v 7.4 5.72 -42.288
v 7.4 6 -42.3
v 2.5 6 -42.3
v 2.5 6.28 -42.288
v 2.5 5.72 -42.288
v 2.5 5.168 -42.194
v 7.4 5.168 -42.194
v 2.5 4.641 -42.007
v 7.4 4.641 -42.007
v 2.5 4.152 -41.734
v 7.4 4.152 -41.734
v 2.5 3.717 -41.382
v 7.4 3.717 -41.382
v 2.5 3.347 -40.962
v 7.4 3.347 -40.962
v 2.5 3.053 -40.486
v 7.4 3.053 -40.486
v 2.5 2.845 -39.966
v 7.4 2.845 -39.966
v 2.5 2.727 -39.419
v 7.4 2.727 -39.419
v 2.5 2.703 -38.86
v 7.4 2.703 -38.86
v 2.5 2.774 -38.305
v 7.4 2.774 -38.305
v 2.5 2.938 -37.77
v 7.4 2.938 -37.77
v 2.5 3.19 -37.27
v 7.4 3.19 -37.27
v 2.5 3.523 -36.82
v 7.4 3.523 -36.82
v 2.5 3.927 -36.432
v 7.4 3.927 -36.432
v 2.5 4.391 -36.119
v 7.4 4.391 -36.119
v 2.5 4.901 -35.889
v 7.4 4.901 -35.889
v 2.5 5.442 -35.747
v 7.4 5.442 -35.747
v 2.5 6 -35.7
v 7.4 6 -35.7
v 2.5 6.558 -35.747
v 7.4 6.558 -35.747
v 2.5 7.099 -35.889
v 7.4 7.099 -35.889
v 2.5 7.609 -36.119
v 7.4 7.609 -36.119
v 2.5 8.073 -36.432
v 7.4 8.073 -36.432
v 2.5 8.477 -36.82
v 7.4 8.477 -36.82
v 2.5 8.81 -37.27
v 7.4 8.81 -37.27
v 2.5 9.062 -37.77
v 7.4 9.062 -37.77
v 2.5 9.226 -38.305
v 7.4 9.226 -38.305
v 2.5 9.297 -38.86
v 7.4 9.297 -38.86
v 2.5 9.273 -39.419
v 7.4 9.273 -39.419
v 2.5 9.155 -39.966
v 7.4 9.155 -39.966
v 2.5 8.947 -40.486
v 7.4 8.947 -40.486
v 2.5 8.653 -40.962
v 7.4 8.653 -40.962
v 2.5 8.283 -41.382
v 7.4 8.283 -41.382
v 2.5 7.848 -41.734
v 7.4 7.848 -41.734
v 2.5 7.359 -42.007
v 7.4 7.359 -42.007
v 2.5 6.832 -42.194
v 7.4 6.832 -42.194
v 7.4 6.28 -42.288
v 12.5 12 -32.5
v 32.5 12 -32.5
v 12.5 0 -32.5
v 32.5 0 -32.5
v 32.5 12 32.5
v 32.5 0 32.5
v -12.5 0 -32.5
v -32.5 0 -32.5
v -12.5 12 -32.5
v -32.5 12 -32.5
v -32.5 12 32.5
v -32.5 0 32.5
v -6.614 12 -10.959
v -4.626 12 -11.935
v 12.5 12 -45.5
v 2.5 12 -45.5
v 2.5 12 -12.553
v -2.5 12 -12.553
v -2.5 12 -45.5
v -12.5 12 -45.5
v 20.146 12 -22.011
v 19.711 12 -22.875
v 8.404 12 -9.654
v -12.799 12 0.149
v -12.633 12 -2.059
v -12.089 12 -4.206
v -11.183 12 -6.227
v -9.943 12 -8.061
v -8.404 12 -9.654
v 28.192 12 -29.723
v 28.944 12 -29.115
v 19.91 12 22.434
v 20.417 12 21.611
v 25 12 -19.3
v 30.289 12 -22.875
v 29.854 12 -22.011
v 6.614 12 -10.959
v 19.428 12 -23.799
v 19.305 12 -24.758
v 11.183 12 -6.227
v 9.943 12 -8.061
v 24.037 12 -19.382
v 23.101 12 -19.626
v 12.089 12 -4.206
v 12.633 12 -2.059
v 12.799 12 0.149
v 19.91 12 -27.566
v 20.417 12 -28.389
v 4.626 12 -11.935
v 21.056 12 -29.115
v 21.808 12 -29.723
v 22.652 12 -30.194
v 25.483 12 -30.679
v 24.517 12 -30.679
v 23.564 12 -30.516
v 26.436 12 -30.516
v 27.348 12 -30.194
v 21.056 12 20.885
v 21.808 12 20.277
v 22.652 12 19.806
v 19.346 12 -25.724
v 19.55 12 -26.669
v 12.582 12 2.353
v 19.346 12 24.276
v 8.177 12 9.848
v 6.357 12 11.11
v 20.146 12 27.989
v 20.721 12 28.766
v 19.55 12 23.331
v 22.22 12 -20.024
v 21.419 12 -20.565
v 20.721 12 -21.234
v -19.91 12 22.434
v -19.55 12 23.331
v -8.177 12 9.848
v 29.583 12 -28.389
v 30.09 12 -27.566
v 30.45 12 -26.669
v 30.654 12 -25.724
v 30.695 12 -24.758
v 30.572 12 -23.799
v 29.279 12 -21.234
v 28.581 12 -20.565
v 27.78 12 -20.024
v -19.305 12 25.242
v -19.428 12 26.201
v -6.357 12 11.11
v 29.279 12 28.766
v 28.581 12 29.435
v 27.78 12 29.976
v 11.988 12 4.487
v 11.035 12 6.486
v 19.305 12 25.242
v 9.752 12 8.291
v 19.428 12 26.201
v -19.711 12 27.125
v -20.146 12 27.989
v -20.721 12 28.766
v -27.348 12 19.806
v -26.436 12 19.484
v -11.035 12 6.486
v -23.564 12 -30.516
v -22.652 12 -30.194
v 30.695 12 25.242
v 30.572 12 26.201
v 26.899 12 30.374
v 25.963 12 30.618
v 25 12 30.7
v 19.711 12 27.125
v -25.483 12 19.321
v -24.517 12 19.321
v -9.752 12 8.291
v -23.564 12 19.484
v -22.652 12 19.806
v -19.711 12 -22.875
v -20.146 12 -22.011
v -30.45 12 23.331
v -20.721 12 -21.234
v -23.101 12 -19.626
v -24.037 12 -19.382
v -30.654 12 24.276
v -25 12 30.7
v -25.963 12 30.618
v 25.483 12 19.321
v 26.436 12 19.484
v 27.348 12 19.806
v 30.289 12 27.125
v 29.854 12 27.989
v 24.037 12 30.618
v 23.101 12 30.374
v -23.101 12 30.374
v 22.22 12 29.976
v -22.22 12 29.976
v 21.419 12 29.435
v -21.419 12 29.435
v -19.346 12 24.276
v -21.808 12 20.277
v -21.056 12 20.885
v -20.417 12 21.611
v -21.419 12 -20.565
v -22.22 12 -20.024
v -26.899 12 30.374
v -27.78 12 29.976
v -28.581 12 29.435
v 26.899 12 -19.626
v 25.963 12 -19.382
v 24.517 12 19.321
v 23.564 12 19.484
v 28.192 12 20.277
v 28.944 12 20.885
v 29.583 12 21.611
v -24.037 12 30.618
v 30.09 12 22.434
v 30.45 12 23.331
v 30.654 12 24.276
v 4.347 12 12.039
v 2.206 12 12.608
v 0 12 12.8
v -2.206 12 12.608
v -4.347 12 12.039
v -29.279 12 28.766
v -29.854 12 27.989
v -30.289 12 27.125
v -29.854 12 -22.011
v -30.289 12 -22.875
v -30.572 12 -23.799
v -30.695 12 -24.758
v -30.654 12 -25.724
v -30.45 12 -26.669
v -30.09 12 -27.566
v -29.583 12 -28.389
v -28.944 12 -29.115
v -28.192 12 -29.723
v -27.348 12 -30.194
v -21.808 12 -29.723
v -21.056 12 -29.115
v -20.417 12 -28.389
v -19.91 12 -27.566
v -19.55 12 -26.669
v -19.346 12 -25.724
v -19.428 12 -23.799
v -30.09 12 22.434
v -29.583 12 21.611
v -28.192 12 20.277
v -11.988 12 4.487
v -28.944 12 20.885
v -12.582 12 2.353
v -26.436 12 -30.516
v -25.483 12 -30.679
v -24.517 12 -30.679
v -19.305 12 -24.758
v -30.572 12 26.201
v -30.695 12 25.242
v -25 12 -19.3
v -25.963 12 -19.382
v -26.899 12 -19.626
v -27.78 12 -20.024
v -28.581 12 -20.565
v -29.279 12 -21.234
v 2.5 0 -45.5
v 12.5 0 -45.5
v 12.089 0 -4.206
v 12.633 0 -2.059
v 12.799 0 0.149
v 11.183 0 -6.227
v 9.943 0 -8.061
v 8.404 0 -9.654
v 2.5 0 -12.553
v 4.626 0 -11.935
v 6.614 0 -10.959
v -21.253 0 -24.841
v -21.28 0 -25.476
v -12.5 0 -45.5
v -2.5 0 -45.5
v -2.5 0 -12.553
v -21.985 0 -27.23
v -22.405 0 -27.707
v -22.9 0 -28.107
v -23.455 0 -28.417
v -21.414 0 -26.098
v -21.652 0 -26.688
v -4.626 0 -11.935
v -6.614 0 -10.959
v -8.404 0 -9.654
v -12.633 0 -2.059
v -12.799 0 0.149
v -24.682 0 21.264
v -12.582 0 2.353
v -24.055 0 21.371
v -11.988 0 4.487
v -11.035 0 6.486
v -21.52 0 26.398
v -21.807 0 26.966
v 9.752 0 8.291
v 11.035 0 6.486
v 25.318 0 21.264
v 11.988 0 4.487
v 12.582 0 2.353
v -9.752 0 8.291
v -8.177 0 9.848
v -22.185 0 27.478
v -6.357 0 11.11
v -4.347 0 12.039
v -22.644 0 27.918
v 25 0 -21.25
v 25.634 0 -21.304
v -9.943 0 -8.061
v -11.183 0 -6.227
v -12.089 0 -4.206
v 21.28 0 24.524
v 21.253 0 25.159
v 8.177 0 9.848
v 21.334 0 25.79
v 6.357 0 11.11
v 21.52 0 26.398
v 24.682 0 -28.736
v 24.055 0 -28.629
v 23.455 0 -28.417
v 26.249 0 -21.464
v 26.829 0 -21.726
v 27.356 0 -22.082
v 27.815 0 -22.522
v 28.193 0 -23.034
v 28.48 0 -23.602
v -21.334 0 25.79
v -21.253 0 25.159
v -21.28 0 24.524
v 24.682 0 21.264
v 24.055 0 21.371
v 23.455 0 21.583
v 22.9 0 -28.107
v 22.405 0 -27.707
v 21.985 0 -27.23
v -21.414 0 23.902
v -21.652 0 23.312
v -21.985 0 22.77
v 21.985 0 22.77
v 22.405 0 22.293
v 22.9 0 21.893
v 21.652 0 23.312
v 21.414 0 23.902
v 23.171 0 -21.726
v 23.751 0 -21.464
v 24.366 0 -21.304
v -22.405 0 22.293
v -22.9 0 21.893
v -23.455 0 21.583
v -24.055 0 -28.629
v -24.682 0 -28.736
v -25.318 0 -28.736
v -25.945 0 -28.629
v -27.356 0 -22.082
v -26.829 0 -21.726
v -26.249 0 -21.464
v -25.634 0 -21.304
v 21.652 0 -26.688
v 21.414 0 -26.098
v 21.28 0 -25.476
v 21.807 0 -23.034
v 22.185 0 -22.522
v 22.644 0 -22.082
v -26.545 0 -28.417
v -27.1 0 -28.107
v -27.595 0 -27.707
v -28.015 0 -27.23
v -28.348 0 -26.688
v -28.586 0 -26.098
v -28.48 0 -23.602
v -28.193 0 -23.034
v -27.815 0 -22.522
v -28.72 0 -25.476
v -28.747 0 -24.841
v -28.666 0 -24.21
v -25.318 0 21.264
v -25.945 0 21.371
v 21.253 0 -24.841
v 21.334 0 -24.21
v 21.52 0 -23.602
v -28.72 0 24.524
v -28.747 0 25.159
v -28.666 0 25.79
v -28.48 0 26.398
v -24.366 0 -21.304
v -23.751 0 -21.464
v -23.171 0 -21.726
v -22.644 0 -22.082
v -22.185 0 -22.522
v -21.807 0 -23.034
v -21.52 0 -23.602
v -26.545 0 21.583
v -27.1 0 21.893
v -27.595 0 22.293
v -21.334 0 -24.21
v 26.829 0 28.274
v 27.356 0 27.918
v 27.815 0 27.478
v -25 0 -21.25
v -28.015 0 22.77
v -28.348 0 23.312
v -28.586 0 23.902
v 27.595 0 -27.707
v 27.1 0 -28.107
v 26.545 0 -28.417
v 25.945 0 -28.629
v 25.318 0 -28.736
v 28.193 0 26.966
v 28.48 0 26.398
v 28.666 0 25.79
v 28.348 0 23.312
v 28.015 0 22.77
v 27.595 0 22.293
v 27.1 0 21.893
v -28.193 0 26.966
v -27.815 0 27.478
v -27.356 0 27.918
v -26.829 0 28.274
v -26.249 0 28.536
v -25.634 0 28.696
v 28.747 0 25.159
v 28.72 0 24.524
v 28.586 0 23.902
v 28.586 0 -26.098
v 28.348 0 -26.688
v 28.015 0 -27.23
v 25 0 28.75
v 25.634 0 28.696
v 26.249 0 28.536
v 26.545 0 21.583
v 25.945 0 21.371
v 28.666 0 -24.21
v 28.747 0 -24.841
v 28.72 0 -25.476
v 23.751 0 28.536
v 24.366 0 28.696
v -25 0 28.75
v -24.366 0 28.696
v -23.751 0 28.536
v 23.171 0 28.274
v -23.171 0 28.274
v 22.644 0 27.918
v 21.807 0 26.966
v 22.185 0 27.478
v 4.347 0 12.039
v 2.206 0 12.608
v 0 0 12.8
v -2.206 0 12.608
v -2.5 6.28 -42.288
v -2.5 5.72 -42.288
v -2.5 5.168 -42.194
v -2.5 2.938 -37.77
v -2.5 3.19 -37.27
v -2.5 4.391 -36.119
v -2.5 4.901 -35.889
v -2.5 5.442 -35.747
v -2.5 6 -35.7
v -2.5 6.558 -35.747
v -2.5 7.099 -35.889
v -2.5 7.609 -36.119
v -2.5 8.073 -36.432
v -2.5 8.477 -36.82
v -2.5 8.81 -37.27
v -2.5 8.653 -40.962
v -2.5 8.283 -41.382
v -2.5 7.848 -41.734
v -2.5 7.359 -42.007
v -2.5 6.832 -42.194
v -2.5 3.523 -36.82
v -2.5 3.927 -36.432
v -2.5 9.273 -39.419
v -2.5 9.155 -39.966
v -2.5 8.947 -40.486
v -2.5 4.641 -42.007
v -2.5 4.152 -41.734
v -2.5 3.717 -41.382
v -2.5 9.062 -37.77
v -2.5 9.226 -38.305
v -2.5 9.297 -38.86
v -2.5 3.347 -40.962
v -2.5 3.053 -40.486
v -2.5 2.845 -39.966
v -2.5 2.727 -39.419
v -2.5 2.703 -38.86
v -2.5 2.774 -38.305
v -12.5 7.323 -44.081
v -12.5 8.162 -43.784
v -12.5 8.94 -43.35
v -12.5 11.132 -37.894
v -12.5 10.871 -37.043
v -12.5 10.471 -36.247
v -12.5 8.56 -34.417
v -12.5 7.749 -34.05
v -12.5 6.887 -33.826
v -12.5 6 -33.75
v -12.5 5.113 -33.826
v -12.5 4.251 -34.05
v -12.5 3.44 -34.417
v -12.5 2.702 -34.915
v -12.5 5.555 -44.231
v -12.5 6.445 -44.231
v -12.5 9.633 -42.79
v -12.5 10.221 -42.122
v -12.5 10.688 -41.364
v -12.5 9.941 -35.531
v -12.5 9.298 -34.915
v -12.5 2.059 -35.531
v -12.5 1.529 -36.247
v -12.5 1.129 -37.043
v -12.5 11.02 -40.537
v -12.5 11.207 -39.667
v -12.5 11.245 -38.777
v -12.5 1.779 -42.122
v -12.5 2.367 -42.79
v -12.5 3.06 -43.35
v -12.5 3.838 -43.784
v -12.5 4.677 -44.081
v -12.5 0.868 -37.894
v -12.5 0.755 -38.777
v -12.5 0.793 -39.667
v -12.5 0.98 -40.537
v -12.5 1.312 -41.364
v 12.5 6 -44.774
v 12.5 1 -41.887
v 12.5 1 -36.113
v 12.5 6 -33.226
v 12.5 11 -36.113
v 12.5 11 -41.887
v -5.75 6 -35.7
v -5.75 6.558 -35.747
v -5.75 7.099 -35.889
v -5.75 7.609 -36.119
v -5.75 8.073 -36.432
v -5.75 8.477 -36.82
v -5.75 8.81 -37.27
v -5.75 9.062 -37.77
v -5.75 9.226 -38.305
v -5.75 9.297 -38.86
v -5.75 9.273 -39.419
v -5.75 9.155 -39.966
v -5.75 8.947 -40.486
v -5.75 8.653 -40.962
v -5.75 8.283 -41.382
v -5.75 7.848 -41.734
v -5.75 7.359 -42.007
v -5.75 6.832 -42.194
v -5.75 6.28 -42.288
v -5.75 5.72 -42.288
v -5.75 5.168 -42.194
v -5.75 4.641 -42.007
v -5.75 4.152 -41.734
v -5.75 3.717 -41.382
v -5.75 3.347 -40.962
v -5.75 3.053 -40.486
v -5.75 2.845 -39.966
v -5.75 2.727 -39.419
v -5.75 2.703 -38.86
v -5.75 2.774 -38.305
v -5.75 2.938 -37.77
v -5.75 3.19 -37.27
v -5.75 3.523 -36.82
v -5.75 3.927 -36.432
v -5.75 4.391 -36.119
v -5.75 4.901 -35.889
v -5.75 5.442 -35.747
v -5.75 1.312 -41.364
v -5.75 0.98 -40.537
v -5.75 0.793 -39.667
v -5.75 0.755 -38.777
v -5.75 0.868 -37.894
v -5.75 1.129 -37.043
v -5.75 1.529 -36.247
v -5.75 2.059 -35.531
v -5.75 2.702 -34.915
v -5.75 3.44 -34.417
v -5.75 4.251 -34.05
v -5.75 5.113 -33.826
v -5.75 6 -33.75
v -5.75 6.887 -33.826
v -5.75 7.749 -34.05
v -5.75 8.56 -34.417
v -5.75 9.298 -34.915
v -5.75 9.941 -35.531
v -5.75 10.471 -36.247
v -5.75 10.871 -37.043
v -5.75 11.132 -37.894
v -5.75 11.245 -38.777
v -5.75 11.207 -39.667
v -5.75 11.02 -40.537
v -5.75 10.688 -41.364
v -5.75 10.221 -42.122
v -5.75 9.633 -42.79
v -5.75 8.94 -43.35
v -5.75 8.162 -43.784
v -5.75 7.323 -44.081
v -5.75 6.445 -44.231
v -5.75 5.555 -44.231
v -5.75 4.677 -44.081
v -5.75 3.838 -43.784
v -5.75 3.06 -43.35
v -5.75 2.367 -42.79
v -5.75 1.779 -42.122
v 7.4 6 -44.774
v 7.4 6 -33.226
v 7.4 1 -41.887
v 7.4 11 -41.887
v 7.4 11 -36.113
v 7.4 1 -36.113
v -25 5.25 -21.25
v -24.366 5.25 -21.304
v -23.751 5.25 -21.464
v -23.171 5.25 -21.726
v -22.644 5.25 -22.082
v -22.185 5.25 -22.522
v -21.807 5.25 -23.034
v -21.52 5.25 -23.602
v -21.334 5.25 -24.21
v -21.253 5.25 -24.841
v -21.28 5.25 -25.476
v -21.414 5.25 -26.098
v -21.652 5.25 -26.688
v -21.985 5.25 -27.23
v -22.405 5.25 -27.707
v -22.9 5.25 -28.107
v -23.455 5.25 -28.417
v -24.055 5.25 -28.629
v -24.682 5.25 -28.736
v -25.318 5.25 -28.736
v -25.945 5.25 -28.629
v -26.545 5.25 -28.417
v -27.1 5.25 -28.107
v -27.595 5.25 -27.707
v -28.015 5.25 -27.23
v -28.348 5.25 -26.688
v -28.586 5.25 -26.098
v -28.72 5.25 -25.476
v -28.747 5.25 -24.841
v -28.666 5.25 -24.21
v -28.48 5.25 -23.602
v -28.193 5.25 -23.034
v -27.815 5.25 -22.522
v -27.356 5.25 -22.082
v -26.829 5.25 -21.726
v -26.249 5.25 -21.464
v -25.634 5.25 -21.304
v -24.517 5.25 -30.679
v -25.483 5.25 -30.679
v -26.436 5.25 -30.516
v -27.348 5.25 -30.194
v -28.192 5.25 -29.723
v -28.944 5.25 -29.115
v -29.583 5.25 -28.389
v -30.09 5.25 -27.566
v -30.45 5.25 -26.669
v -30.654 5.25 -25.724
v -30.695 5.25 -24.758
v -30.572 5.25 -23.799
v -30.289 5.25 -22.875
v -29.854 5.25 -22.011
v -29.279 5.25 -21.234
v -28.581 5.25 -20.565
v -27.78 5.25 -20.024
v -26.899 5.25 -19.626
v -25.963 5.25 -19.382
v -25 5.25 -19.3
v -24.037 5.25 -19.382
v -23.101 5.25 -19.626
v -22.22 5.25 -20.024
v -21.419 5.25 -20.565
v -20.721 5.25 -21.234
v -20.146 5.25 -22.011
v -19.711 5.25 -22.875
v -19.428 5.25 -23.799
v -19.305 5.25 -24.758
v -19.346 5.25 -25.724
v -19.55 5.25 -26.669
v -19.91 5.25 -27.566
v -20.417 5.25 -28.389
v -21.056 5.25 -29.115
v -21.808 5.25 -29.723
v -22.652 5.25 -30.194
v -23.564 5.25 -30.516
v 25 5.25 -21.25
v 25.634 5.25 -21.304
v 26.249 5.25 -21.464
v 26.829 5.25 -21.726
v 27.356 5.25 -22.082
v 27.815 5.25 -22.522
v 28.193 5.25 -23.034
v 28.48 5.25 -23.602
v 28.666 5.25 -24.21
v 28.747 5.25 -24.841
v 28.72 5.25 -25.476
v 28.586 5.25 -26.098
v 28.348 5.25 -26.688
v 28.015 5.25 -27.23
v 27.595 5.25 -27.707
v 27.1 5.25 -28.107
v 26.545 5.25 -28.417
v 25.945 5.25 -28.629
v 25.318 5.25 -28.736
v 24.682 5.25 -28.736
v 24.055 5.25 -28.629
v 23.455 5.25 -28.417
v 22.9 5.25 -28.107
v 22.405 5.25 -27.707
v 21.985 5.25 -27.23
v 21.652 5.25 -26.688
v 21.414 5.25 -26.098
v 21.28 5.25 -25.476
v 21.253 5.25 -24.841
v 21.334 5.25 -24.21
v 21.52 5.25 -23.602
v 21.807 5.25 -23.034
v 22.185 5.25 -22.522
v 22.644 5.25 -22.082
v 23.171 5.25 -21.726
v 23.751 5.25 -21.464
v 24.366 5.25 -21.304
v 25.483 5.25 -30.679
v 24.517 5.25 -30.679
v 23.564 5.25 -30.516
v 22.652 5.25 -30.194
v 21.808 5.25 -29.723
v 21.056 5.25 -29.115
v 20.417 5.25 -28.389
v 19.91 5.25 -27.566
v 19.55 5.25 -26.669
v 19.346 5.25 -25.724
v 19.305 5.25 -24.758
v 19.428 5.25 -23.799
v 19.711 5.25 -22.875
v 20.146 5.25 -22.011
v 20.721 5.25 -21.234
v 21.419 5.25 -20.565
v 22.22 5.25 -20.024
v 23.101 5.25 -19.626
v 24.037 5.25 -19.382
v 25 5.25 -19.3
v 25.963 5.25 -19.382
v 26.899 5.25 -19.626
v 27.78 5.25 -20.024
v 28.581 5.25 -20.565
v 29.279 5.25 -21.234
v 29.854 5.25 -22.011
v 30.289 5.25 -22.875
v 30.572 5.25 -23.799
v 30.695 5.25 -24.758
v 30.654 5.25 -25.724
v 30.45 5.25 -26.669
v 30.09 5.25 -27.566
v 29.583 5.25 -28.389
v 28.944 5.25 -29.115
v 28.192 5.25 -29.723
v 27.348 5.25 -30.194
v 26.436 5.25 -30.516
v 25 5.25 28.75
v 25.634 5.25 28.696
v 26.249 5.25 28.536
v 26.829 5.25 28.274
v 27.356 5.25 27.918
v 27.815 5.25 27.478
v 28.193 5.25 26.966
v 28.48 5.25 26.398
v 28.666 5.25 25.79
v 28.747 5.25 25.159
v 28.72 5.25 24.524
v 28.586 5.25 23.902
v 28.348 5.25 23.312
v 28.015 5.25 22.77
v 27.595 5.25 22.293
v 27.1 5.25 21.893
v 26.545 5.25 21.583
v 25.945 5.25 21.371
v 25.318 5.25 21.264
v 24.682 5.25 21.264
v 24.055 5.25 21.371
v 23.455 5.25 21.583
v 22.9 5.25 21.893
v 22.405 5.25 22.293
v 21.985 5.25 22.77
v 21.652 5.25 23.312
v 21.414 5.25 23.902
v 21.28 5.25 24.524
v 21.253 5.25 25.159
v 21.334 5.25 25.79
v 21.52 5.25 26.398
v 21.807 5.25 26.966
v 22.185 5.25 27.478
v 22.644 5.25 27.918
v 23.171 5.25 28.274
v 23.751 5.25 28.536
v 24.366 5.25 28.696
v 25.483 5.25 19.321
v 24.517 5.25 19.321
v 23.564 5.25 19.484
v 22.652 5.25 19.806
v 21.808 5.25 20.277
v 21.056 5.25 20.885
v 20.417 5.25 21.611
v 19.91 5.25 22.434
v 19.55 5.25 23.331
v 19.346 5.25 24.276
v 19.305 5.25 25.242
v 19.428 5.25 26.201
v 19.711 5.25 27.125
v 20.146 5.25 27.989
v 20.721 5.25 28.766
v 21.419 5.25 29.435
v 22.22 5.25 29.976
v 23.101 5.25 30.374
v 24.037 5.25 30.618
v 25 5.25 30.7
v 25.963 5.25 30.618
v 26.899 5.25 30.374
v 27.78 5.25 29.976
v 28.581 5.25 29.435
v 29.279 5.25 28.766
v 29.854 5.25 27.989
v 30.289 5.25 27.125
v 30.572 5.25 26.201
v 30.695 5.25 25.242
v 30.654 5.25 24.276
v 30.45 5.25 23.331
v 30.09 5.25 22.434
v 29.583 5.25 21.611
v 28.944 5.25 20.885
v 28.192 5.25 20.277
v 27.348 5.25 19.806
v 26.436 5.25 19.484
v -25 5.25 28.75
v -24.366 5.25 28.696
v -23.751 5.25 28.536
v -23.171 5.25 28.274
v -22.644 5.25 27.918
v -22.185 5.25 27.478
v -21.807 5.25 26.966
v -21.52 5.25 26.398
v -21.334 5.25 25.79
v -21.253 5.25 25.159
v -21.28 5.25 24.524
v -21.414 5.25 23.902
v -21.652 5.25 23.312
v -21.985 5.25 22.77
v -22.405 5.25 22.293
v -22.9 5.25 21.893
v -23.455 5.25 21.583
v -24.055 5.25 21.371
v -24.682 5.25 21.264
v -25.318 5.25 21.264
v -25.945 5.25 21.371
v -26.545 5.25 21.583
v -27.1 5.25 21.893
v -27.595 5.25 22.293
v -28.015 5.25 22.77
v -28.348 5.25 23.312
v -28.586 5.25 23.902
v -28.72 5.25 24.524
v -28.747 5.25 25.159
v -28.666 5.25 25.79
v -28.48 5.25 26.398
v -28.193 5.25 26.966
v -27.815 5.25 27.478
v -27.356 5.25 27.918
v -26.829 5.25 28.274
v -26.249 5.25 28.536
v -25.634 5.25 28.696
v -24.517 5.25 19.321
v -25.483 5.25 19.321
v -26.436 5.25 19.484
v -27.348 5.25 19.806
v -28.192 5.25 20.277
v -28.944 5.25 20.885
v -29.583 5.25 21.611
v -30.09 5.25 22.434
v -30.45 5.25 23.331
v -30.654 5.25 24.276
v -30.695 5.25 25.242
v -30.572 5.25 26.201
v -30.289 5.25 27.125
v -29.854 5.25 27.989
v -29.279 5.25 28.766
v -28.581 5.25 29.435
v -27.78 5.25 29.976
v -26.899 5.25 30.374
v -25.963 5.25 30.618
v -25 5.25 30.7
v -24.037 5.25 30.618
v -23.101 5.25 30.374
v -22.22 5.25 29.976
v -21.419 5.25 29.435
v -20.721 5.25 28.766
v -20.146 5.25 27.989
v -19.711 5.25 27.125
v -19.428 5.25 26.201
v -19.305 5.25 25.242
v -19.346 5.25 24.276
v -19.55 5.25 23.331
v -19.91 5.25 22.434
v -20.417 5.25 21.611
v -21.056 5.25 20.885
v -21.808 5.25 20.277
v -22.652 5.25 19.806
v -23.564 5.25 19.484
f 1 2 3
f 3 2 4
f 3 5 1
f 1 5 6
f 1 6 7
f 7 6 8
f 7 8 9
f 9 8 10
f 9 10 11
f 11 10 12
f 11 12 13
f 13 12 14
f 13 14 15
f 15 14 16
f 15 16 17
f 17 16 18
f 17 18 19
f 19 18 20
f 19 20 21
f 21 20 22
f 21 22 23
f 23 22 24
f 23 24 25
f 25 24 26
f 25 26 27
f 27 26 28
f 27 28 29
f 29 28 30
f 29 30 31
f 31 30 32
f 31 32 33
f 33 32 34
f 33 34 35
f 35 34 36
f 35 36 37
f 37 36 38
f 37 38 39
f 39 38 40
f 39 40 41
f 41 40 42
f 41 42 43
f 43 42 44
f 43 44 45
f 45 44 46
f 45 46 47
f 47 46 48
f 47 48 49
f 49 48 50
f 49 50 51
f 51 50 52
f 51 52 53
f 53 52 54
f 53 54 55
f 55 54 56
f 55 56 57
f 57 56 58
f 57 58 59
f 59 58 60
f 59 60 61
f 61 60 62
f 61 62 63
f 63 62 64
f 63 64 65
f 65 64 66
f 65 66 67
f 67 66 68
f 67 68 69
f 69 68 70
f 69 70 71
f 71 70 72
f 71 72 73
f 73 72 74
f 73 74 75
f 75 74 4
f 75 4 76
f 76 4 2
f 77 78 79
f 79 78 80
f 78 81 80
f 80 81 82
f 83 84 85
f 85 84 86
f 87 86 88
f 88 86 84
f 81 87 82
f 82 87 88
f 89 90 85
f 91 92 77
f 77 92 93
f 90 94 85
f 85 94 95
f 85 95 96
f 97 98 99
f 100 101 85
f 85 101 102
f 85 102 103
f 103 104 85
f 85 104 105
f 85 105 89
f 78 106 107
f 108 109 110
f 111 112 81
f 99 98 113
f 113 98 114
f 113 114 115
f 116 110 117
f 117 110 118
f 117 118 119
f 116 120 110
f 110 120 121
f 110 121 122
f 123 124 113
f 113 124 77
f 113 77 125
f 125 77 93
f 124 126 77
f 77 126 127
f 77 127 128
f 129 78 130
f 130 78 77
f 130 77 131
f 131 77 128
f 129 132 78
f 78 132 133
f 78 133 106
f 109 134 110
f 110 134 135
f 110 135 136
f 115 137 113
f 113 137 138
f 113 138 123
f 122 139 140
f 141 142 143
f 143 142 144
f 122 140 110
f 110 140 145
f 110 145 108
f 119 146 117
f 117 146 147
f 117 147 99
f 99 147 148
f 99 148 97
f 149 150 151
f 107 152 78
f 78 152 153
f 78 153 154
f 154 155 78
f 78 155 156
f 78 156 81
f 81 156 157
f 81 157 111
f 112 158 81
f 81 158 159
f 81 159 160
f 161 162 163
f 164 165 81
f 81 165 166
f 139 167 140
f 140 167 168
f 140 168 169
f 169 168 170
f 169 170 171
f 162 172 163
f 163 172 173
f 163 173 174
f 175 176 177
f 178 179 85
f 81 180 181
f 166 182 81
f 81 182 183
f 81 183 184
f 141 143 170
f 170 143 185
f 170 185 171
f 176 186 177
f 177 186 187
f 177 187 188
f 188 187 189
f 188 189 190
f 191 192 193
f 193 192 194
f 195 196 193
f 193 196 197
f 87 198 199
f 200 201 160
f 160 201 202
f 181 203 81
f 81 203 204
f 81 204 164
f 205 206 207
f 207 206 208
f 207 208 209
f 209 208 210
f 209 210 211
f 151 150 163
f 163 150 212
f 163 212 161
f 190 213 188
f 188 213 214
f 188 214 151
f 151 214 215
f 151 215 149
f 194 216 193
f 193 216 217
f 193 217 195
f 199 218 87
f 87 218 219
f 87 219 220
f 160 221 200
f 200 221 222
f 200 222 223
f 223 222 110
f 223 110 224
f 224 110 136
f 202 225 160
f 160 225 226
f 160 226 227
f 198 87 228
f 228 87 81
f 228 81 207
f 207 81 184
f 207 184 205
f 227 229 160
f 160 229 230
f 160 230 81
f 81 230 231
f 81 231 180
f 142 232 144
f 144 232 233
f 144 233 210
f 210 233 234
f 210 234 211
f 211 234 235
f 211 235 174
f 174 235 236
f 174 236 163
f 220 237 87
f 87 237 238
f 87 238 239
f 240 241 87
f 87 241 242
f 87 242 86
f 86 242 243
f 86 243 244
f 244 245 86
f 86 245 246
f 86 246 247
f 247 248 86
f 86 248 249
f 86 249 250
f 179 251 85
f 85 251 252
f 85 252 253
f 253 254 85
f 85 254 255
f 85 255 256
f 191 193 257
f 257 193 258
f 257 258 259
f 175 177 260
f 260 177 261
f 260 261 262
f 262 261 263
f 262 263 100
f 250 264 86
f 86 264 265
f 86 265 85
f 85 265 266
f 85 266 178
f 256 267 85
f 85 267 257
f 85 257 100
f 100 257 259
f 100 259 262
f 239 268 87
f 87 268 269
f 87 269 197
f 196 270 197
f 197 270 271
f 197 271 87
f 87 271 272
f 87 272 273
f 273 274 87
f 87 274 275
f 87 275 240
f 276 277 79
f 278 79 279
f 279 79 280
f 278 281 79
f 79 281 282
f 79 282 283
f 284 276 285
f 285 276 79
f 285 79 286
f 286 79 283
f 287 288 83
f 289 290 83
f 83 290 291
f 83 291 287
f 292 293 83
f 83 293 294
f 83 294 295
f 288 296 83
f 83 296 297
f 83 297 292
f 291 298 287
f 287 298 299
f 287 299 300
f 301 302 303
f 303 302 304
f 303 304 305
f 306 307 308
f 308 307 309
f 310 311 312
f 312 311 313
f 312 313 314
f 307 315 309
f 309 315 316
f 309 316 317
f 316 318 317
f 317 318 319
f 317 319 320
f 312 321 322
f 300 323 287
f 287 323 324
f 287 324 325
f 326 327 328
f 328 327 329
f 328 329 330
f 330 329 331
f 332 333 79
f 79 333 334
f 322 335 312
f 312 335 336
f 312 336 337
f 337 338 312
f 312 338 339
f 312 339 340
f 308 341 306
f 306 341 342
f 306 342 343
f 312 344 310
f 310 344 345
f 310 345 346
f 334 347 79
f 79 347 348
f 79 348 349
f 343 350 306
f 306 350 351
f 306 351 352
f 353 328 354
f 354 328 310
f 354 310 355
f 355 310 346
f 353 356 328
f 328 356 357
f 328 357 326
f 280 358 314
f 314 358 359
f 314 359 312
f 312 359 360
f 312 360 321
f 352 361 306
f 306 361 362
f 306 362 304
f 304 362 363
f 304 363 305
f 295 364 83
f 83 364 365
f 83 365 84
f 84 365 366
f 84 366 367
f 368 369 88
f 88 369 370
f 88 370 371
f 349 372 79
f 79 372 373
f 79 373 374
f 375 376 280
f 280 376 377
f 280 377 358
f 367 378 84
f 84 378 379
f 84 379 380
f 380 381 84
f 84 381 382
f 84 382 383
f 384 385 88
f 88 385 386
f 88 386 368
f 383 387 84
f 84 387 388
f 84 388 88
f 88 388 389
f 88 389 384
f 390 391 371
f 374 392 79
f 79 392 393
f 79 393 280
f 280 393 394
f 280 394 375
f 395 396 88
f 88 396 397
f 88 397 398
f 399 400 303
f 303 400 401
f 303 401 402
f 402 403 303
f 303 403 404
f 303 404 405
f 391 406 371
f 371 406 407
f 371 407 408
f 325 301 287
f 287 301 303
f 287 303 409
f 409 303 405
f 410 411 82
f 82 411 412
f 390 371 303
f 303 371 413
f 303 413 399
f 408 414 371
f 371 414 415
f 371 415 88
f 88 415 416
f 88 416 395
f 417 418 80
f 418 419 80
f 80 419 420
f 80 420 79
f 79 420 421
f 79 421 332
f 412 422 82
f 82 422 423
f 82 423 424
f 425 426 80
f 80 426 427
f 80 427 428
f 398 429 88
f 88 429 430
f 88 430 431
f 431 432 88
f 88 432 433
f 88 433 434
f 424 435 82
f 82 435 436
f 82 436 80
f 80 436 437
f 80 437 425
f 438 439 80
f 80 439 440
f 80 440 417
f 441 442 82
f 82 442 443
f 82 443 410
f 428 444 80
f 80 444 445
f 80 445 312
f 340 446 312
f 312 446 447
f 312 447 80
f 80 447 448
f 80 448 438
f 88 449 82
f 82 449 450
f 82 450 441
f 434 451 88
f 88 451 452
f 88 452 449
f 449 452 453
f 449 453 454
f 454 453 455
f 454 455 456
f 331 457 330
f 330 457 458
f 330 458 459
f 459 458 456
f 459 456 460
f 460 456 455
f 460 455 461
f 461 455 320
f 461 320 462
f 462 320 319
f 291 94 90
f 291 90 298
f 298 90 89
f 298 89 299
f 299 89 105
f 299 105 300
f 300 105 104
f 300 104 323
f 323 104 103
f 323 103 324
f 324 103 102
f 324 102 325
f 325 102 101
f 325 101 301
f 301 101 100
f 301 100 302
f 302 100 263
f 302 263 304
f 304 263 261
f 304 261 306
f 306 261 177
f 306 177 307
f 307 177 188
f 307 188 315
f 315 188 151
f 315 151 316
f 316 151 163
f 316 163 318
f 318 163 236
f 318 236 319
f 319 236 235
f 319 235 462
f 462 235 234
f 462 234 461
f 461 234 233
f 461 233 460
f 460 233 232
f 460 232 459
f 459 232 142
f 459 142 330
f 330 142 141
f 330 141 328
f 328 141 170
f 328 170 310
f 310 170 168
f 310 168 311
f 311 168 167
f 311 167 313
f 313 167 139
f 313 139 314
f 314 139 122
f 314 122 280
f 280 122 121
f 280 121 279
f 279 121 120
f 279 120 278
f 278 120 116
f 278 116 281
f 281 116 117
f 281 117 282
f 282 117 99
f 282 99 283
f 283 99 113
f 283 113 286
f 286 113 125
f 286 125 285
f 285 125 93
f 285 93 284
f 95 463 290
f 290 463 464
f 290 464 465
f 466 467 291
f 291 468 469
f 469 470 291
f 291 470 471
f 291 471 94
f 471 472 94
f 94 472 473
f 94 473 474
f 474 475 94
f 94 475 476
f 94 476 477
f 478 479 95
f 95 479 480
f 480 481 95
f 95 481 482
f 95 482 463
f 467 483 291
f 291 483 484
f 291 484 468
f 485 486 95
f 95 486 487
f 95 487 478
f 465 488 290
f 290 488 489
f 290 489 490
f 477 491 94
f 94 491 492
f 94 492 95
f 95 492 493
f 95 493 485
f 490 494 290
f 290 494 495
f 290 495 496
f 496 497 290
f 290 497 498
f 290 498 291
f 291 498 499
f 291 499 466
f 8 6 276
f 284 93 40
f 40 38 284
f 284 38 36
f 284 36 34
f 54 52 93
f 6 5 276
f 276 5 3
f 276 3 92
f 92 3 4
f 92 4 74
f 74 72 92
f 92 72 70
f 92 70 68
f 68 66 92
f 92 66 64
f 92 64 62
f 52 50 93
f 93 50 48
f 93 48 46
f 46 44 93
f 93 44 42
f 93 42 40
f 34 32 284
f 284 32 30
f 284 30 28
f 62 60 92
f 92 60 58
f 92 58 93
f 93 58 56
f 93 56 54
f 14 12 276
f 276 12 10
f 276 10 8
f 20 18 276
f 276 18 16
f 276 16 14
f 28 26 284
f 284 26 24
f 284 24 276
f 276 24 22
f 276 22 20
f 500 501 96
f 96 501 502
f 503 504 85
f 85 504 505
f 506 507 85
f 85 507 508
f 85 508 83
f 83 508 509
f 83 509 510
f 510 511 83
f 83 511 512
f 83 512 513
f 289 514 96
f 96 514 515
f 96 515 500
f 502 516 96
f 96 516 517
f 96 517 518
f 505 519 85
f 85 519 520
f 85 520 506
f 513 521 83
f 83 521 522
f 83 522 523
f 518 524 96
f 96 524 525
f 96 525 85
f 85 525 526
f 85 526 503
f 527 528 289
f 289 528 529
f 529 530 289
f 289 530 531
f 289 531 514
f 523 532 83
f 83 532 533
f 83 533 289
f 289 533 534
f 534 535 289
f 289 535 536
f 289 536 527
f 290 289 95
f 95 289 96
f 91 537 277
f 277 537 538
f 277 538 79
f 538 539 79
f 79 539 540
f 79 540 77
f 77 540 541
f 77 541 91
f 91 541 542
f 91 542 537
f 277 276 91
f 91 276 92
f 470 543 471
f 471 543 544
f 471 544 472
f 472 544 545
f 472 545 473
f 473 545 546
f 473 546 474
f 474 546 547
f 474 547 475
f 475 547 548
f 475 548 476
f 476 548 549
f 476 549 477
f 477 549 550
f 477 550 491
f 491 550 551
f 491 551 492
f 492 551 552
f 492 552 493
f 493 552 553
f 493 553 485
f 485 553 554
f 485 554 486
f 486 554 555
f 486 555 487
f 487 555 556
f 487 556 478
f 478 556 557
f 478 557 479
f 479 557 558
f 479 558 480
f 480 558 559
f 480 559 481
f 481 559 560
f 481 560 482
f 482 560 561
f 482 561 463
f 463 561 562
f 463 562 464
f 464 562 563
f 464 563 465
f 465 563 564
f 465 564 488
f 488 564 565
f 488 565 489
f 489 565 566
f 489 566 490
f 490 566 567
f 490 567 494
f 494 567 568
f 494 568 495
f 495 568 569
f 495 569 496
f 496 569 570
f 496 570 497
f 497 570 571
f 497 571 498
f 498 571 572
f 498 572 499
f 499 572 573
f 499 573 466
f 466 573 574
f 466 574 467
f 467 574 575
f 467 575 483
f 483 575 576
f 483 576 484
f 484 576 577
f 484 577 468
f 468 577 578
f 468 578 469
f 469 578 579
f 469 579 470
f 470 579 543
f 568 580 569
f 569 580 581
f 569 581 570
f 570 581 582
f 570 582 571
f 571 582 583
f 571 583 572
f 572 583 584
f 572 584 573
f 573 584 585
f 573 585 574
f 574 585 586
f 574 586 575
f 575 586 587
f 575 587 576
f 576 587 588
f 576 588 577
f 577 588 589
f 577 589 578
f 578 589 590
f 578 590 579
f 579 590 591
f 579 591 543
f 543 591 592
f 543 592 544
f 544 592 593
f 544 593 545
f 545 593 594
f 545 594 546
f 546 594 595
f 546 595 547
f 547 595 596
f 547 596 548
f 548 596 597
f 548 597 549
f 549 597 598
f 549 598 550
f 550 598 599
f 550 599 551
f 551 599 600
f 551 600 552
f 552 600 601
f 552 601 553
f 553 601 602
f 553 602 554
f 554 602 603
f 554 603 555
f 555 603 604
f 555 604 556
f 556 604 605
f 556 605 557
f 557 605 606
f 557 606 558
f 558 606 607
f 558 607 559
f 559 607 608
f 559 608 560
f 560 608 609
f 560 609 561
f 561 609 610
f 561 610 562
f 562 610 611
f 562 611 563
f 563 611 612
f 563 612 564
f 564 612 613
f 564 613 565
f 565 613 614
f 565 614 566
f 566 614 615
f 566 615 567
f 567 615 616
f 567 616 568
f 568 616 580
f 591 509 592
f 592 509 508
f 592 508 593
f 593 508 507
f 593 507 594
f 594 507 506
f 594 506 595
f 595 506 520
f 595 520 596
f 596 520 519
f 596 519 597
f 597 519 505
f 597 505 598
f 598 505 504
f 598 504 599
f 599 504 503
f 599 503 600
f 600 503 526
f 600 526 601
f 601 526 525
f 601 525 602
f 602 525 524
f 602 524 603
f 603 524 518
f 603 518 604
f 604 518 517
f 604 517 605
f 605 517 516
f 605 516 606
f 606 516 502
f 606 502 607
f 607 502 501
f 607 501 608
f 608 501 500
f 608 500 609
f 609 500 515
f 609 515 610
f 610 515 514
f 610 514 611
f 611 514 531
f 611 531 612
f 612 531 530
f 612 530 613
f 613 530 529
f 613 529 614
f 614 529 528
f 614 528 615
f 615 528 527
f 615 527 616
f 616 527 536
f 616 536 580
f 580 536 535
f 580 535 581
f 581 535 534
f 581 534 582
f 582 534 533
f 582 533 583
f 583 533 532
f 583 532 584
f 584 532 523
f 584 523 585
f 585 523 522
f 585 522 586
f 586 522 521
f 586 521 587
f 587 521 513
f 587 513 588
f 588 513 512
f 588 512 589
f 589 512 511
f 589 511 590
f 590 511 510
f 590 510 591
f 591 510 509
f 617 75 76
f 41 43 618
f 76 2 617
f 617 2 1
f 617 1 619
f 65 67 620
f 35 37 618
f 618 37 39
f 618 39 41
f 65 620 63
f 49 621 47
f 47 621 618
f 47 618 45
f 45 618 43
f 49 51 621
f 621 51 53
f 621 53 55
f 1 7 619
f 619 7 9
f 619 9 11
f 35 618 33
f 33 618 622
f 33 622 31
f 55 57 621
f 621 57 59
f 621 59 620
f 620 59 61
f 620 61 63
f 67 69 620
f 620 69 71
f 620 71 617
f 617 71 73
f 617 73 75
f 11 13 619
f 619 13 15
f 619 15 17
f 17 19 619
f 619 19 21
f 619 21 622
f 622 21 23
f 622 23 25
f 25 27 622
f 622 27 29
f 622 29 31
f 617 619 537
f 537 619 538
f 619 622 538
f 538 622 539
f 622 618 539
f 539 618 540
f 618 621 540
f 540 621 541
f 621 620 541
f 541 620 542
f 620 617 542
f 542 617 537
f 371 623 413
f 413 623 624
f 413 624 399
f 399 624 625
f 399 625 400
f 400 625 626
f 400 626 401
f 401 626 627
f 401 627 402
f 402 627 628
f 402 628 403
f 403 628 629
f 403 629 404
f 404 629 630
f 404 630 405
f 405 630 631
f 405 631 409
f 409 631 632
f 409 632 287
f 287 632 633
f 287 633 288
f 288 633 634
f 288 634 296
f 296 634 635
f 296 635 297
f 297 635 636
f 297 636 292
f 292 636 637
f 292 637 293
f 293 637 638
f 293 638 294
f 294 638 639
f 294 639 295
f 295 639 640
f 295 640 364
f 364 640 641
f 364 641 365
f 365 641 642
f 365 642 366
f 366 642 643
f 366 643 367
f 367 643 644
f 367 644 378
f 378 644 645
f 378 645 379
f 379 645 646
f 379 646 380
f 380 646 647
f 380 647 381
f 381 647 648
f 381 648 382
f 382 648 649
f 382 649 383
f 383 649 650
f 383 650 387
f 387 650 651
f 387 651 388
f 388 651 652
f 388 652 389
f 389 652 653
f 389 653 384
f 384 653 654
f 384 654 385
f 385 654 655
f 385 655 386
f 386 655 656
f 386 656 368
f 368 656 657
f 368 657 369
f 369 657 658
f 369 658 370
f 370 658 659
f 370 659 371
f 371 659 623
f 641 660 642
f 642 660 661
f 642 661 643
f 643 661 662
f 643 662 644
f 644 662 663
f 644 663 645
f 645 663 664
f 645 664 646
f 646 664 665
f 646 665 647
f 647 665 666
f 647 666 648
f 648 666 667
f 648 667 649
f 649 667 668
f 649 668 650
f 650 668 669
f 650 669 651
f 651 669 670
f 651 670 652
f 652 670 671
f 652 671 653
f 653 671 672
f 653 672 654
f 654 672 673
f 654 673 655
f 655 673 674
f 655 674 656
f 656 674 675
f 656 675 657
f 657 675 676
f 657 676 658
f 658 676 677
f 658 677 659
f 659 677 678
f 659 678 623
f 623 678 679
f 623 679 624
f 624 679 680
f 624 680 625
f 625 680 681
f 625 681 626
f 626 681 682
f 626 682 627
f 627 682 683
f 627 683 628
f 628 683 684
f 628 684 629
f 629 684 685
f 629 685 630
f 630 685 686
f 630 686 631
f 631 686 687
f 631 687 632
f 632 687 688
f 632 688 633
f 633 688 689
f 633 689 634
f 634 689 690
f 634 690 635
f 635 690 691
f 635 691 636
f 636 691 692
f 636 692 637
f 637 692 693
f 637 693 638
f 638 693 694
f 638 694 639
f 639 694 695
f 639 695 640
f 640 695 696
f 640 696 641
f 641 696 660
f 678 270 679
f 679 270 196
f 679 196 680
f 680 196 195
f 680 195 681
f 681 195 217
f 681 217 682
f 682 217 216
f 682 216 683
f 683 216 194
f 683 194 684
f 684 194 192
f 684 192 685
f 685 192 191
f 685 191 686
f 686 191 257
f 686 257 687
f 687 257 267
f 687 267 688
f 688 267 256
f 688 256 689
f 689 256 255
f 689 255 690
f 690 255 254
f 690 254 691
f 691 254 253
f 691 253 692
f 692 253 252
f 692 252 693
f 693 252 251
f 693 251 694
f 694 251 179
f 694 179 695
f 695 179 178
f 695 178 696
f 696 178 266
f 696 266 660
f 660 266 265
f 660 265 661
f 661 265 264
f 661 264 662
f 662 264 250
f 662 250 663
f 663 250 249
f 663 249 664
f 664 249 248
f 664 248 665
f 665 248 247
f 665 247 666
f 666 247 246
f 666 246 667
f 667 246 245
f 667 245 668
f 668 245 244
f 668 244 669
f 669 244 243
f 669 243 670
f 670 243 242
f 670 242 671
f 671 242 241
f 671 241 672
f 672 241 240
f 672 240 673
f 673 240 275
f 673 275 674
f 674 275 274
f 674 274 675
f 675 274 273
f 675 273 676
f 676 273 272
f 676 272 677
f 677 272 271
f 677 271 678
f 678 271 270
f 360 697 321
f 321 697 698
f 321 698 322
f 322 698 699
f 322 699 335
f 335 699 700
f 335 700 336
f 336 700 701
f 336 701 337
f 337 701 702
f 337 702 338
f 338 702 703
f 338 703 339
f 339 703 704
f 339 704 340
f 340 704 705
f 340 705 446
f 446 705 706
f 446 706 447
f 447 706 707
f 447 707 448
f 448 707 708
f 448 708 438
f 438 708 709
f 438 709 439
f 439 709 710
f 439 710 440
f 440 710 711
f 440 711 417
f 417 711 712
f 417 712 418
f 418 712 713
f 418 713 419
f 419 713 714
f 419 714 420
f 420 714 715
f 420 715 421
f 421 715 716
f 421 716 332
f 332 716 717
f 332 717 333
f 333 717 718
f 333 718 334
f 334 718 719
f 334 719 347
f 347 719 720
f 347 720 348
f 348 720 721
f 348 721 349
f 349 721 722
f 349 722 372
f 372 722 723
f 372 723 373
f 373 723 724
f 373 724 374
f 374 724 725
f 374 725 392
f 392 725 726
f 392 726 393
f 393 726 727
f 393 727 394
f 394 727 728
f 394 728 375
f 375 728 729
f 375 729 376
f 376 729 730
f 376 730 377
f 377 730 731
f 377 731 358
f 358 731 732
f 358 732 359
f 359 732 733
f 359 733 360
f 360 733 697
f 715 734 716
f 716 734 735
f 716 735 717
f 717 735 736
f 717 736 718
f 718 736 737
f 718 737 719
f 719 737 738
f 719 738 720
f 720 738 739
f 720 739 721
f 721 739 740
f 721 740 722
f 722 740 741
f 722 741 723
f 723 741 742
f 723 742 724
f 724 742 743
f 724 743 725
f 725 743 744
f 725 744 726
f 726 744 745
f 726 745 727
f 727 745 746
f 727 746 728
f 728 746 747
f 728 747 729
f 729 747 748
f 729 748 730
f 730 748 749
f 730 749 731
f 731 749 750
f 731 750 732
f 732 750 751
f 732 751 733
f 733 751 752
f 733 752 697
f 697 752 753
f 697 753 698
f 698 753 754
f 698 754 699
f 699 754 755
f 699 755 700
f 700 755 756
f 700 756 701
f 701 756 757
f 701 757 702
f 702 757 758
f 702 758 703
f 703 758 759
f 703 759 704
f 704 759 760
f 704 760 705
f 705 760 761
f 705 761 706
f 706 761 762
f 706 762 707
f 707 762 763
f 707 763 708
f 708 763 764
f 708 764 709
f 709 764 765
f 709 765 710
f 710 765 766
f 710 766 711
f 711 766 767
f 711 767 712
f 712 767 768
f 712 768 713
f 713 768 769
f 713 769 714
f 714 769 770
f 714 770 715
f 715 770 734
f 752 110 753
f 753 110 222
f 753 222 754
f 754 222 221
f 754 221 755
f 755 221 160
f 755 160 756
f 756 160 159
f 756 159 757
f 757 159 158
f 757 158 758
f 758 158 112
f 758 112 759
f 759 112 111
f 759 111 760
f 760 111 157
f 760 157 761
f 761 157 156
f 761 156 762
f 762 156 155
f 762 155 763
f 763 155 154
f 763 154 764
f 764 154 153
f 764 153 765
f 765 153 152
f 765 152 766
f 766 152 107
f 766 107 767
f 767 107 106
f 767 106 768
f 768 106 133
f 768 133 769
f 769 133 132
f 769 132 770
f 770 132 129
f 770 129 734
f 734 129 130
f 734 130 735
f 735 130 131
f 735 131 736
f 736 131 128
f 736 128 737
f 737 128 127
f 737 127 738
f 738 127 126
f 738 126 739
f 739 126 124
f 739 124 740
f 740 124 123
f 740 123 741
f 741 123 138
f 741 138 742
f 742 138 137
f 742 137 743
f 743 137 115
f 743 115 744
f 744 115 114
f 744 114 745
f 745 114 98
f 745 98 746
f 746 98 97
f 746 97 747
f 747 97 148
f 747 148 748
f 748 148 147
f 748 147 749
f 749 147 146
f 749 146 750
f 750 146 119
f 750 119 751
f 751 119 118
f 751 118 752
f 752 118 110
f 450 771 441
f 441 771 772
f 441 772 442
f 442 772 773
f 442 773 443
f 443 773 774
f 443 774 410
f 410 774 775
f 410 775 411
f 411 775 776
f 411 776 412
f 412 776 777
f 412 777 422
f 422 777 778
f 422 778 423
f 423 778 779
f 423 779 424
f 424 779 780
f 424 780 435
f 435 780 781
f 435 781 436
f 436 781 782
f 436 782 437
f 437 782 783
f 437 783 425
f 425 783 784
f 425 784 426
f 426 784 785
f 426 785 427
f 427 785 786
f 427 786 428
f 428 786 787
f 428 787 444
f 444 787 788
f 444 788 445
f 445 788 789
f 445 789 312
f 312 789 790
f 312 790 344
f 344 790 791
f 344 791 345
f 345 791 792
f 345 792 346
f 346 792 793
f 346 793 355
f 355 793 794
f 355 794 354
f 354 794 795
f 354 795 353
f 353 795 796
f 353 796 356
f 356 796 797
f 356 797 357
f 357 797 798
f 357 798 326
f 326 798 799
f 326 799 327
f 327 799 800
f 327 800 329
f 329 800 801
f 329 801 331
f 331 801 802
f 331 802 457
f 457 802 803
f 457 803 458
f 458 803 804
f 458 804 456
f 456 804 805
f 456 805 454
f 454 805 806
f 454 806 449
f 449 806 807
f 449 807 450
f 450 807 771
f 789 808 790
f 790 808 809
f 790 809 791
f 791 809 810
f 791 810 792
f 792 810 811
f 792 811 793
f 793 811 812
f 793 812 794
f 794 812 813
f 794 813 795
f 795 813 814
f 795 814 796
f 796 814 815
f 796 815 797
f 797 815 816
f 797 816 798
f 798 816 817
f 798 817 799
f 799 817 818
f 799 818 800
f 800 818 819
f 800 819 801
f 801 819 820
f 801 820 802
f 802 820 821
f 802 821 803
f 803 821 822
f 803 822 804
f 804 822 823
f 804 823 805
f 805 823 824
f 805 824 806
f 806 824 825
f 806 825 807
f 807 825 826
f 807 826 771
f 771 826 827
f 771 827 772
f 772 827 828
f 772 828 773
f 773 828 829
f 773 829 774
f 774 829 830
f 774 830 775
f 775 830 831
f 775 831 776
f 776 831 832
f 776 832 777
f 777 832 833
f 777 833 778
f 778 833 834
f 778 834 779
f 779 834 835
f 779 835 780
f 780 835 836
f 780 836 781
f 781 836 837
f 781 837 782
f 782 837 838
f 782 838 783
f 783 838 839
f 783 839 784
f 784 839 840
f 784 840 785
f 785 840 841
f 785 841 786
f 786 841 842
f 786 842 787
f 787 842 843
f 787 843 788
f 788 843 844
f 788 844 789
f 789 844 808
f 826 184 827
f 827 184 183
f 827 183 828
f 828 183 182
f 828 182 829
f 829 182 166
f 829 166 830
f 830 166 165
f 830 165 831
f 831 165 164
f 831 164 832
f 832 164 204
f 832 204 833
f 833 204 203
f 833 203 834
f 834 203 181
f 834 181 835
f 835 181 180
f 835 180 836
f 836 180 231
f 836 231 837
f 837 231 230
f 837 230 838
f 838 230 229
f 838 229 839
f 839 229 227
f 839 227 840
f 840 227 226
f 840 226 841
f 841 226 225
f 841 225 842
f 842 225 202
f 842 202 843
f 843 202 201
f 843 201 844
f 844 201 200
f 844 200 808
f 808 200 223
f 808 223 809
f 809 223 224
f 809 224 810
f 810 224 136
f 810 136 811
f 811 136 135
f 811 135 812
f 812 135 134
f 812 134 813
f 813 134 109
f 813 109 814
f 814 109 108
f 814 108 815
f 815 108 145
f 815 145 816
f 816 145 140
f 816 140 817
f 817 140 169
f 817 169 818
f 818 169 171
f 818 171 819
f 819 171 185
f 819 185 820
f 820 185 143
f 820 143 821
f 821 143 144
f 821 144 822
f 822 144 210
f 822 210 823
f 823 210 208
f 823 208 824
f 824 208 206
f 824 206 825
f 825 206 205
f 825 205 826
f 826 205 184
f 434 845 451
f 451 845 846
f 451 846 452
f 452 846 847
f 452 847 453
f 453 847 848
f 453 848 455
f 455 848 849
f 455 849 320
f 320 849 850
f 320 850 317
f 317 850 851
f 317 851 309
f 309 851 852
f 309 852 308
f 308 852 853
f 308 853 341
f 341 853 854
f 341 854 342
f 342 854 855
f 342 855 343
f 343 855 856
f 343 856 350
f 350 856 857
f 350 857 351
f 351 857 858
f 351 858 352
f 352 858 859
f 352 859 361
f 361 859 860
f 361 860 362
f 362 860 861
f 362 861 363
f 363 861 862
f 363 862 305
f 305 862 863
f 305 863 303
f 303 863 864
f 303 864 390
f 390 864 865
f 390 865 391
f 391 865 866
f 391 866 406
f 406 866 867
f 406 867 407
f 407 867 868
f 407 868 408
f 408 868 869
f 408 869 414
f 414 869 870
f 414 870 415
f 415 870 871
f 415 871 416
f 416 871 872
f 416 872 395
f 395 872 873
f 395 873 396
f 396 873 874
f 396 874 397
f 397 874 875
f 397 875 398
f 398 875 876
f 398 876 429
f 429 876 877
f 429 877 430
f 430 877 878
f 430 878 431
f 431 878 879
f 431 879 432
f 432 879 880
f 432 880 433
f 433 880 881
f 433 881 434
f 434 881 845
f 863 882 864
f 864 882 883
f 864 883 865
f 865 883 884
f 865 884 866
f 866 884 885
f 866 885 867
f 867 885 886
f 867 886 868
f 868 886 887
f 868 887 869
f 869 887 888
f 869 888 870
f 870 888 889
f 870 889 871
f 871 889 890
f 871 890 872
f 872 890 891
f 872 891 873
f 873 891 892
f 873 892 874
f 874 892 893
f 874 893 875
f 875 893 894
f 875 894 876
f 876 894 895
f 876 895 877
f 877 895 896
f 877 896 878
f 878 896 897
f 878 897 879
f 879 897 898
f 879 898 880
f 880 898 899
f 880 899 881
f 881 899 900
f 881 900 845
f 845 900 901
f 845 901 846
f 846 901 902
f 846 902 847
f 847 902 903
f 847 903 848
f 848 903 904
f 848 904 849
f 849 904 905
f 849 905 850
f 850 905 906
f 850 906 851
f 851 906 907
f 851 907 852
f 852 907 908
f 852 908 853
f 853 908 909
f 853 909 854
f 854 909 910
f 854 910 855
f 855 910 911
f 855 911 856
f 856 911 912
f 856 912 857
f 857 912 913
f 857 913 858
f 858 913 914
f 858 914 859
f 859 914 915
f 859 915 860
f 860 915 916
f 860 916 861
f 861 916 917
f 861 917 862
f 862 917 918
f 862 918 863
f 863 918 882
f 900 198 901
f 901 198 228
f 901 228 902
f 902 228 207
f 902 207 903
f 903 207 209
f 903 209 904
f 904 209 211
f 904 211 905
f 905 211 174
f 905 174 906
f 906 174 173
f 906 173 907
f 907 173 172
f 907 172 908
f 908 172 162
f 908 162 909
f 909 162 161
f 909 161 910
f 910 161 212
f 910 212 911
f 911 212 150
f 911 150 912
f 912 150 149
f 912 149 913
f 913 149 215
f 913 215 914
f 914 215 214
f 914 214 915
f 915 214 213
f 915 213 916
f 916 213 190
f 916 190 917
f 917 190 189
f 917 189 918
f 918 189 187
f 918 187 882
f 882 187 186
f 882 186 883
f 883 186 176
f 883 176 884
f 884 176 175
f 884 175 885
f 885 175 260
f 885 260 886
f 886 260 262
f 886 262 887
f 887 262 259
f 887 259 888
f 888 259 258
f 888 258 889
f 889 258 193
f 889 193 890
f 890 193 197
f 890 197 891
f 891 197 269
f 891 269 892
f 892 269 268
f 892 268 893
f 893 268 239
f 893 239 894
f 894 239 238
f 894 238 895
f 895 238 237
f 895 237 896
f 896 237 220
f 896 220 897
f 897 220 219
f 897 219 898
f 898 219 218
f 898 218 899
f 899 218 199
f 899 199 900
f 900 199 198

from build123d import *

# Parameters (mm, degrees)
SKETCH1_W                                           = 65
SKETCH1_H                                           = 65
BOSS_EXTRUDE1_DEPTH                                 = 12
SKETCH3_R                                           = 12.8
CUT_EXTRUDE1_DEPTH                                  = 12
SKETCH4_W                                           = 5
SKETCH4_H                                           = 40
CUT_EXTRUDE2_DEPTH                                  = 12
SKETCH5_W                                           = 10
SKETCH5_H                                           = 13
BOSS_EXTRUDE4_DEPTH                                 = 12
LPATTERN1_COUNT                                     = 2
LPATTERN1_PITCH                                     = 15
CBORE_FOR_M6_HEX_SOCKET_HEAD_CAP_SCREW1_D           = 6.6
CBORE_FOR_M6_HEX_SOCKET_HEAD_CAP_SCREW1_CBORE_D     = 10.5
CBORE_FOR_M6_HEX_SOCKET_HEAD_CAP_SCREW1_CBORE_DEPTH = 6.75
CUT_EXTRUDE3_DEPTH                                  = 5.1
CBORE_FOR_M6_HEX_SOCKET_HEAD_CAP_SCREW2_D           = 7.5
CBORE_FOR_M6_HEX_SOCKET_HEAD_CAP_SCREW2_CBORE_D     = 11.4
CBORE_FOR_M6_HEX_SOCKET_HEAD_CAP_SCREW2_CBORE_DEPTH = 6.75
CBORE_FOR_M6_HEX_SOCKET_HEAD_CAP_SCREW3_D           = 7.5
CBORE_FOR_M6_HEX_SOCKET_HEAD_CAP_SCREW3_CBORE_D     = 11.4
CBORE_FOR_M6_HEX_SOCKET_HEAD_CAP_SCREW3_CBORE_DEPTH = 6.75
CBORE_FOR_M6_HEX_SOCKET_HEAD_CAP_SCREW4_D           = 7.5
CBORE_FOR_M6_HEX_SOCKET_HEAD_CAP_SCREW4_CBORE_D     = 11.4
CBORE_FOR_M6_HEX_SOCKET_HEAD_CAP_SCREW4_CBORE_DEPTH = 6.75
CBORE_FOR_M6_HEX_SOCKET_HEAD_CAP_SCREW5_D           = 7.5
CBORE_FOR_M6_HEX_SOCKET_HEAD_CAP_SCREW5_CBORE_D     = 11.4
CBORE_FOR_M6_HEX_SOCKET_HEAD_CAP_SCREW5_CBORE_DEPTH = 6.75


with BuildPart() as part:
    # Sketch1 → Boss-Extrude1 (new body)
    with BuildSketch(Plane(origin=(0, 0, 0), x_dir=(1, 0, 0), z_dir=(0, 1, 0))):
        Rectangle(SKETCH1_W, SKETCH1_H)
    extrude(amount=BOSS_EXTRUDE1_DEPTH)

    # Sketch3 → Cut-Extrude1 (cut)
    with BuildSketch(Plane(origin=(0, 12, 0), x_dir=(-1, 0, 0), z_dir=(0, 1, 0))):
        with Locations(Location((0, 0, 0), (0, 0, 90))):
            Circle(SKETCH3_R)
    extrude(amount=-CUT_EXTRUDE1_DEPTH, mode=Mode.SUBTRACT)

    # Sketch4 → Cut-Extrude2 (cut)
    with BuildSketch(Plane(origin=(0, 12, 0), x_dir=(-1, 0, 0), z_dir=(0, 1, 0))):
        with Locations((0, -32.5)):
            Rectangle(SKETCH4_W, SKETCH4_H)
    extrude(amount=-CUT_EXTRUDE2_DEPTH, mode=Mode.SUBTRACT)

    # Sketch5 → Boss-Extrude4 (add)
    with BuildSketch(Plane(origin=(0, 12, 0), x_dir=(-1, 0, 0), z_dir=(0, 1, 0))):
        with Locations((7.5, -39)):
            Rectangle(SKETCH5_W, SKETCH5_H)
    boss_extrude4 = extrude(amount=-BOSS_EXTRUDE4_DEPTH)

    # LPattern1: Boss-Extrude4 ×2
    with Locations(*[(i * LPATTERN1_PITCH, 0, 0) for i in range(1, LPATTERN1_COUNT)]):
        add(boss_extrude4)

    # CBORE for M6 Hex Socket Head Cap Screw1 (through all)
    with Locations(Plane.ZY.offset(12.5)):
        with Locations((-39, 6)):
            CounterBoreHole(CBORE_FOR_M6_HEX_SOCKET_HEAD_CAP_SCREW1_D / 2, CBORE_FOR_M6_HEX_SOCKET_HEAD_CAP_SCREW1_CBORE_D / 2, CBORE_FOR_M6_HEX_SOCKET_HEAD_CAP_SCREW1_CBORE_DEPTH)

    # Sketch9 → Cut-Extrude3 (cut)
    with BuildSketch(Plane(origin=(12.5, 0, 0), x_dir=(0, 0, -1), z_dir=(1, 0, 0))):
        Polygon((44.773502692, 6), (41.886751346, 11), (36.113248654, 11), (33.226497308, 6), (36.113248654, 1), (41.886751346, 1), align=None)
    extrude(amount=-CUT_EXTRUDE3_DEPTH, mode=Mode.SUBTRACT)

    # CBORE for M6 Hex Socket Head Cap Screw2 (through all)
    with Locations(Plane(origin=(0, 12, 0), x_dir=(-1, 0, 0), z_dir=(0, 1, 0))):
        with Locations((25, -25)):
            CounterBoreHole(CBORE_FOR_M6_HEX_SOCKET_HEAD_CAP_SCREW2_D / 2, CBORE_FOR_M6_HEX_SOCKET_HEAD_CAP_SCREW2_CBORE_D / 2, CBORE_FOR_M6_HEX_SOCKET_HEAD_CAP_SCREW2_CBORE_DEPTH)

    # CBORE for M6 Hex Socket Head Cap Screw3 (through all)
    with Locations(Plane(origin=(0, 12, 0), x_dir=(-1, 0, 0), z_dir=(0, 1, 0))):
        with Locations((-25, -25)):
            CounterBoreHole(CBORE_FOR_M6_HEX_SOCKET_HEAD_CAP_SCREW3_D / 2, CBORE_FOR_M6_HEX_SOCKET_HEAD_CAP_SCREW3_CBORE_D / 2, CBORE_FOR_M6_HEX_SOCKET_HEAD_CAP_SCREW3_CBORE_DEPTH)

    # CBORE for M6 Hex Socket Head Cap Screw4 (through all)
    with Locations(Plane(origin=(0, 12, 0), x_dir=(-1, 0, 0), z_dir=(0, 1, 0))):
        with Locations((-25, 25)):
            CounterBoreHole(CBORE_FOR_M6_HEX_SOCKET_HEAD_CAP_SCREW4_D / 2, CBORE_FOR_M6_HEX_SOCKET_HEAD_CAP_SCREW4_CBORE_D / 2, CBORE_FOR_M6_HEX_SOCKET_HEAD_CAP_SCREW4_CBORE_DEPTH)

    # CBORE for M6 Hex Socket Head Cap Screw5 (through all)
    with Locations(Plane(origin=(0, 12, 0), x_dir=(-1, 0, 0), z_dir=(0, 1, 0))):
        with Locations((25, 25)):
            CounterBoreHole(CBORE_FOR_M6_HEX_SOCKET_HEAD_CAP_SCREW5_D / 2, CBORE_FOR_M6_HEX_SOCKET_HEAD_CAP_SCREW5_CBORE_D / 2, CBORE_FOR_M6_HEX_SOCKET_HEAD_CAP_SCREW5_CBORE_DEPTH)


solid = part.part
